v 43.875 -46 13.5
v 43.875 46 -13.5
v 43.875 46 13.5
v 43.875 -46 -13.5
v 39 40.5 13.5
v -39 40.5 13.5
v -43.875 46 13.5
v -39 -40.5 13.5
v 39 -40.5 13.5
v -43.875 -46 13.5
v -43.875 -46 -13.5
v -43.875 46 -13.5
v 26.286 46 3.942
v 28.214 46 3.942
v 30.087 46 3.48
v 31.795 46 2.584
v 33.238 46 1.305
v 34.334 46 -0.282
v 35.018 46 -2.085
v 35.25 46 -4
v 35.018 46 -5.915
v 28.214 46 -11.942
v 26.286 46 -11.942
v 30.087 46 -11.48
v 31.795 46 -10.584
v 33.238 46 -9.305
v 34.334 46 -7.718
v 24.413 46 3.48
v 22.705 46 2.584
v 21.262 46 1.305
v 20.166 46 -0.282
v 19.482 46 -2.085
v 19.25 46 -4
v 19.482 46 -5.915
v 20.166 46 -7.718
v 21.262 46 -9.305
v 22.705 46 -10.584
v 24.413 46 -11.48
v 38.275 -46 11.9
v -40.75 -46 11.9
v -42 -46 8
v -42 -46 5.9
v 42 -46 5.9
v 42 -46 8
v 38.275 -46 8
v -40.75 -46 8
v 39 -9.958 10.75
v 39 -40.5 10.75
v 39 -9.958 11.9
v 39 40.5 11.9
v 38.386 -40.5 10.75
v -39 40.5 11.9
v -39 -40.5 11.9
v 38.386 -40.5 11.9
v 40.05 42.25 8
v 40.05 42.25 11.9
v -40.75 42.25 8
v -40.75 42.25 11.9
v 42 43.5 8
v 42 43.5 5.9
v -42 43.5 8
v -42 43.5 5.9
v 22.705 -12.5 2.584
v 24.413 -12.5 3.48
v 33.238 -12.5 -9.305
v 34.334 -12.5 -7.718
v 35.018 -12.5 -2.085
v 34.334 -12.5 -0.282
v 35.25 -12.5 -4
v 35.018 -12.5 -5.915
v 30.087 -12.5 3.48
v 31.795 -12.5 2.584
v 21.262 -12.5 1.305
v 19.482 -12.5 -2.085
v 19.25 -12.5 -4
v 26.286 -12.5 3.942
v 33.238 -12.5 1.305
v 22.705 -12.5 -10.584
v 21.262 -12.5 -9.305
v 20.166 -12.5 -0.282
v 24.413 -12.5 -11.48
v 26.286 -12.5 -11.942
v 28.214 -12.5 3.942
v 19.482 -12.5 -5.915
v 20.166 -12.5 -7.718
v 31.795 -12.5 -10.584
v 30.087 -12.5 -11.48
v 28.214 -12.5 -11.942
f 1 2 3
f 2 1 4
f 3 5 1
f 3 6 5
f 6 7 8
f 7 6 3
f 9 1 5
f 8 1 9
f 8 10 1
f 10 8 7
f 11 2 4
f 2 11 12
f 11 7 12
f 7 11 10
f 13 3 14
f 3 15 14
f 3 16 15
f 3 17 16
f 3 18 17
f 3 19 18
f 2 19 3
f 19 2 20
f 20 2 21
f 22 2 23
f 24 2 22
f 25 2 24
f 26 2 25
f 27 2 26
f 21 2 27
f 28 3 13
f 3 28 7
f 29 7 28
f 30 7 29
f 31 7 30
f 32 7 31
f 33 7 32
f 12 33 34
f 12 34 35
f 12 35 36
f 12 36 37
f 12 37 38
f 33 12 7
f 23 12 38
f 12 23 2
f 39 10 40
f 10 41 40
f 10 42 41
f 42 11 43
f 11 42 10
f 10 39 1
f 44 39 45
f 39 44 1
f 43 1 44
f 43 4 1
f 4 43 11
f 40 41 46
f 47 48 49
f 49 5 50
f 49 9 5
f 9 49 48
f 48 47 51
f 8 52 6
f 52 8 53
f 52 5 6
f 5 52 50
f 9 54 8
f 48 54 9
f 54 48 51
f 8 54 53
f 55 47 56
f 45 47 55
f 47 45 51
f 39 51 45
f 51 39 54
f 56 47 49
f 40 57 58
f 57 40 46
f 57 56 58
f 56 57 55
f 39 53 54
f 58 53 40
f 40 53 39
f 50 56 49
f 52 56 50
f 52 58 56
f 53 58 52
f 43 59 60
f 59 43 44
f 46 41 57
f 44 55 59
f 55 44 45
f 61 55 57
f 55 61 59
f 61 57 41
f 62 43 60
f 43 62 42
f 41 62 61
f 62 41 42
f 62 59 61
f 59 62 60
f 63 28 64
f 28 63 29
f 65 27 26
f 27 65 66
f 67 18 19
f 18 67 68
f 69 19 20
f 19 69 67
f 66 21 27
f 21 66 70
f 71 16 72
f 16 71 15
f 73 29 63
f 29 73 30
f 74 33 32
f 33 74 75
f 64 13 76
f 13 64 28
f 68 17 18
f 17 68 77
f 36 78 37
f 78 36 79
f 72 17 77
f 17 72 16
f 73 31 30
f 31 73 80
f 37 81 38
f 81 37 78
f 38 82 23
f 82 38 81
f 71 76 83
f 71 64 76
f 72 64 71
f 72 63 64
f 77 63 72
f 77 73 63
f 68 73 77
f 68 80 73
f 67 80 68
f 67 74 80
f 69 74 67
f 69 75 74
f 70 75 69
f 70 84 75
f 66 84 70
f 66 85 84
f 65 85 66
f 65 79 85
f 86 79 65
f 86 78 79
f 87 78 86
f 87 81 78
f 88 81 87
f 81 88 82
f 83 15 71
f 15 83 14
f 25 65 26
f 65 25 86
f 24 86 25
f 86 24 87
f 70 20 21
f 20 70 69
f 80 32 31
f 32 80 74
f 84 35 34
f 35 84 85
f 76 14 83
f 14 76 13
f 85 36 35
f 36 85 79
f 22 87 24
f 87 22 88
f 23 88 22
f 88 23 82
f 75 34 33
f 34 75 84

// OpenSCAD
height = 27;
border = 2.5;
tolerance = 0.5;

glass_x = 80 + tolerance * 3;
glass_y = 83 + tolerance * 3;
glass_z = 4;

pcb_z = 1.6 + tolerance;

button_hole_z = 14;
button_hole_x = 18;
// button_height = 22

battery_dia = 16;
battery_len = 34;
battery_con = 15;

module battery_compartment() {
    translate([(glass_x + 2 * border) / 2- battery_dia, (glass_y + 3 * border) / 2 - battery_len / 2, - height / 2 + battery_dia / 2 + tolerance * 3]) {
        rotate([90]) {
            cylinder(r = battery_dia / 2, h = 34 * 2 + battery_con, center = true);
        }
    }
}

difference() {
    cube(size = [glass_x + 2.5 * border, glass_y + 3 * border, height], center = true);
    translate([0, 0, height / 2 - tolerance * 3 / 2]) {
        // glass fit1
        cube(size = [glass_x - tolerance * 7, glass_y - tolerance * 7, glass_z], center = true);
    }
    translate([0,-border, height / 2 - glass_z / 2 - tolerance * 3 - 0.1]) {
        // glass hole
        linear_extrude(height=glass_z, center=true) {
            polygon(points=[
                [- (glass_x) / 2,       - (glass_y + border * 2) / 2],
                [- (glass_x) / 2,       + (glass_y + border * 2) / 2],
                [+ (glass_x) / 2 - 0.7, + (glass_y + border * 2) / 2],
                [+ (glass_x) / 2 - 2.5, - (glass_y + border * 2) / 2]],
                paths=[[0,1,2,3]]
            );
        }
        // cube(size = [glass_x, glass_y + border * 2, glass_z], center = true);
    }
    translate([0, -border / 2, height / 2 - glass_z - (pcb_z / 2)  - tolerance * 3]) {
        // pcb hole
        cube(size = [glass_x + border, glass_y + border * 2, pcb_z], center = true);
    }
    battery_compartment();
}
